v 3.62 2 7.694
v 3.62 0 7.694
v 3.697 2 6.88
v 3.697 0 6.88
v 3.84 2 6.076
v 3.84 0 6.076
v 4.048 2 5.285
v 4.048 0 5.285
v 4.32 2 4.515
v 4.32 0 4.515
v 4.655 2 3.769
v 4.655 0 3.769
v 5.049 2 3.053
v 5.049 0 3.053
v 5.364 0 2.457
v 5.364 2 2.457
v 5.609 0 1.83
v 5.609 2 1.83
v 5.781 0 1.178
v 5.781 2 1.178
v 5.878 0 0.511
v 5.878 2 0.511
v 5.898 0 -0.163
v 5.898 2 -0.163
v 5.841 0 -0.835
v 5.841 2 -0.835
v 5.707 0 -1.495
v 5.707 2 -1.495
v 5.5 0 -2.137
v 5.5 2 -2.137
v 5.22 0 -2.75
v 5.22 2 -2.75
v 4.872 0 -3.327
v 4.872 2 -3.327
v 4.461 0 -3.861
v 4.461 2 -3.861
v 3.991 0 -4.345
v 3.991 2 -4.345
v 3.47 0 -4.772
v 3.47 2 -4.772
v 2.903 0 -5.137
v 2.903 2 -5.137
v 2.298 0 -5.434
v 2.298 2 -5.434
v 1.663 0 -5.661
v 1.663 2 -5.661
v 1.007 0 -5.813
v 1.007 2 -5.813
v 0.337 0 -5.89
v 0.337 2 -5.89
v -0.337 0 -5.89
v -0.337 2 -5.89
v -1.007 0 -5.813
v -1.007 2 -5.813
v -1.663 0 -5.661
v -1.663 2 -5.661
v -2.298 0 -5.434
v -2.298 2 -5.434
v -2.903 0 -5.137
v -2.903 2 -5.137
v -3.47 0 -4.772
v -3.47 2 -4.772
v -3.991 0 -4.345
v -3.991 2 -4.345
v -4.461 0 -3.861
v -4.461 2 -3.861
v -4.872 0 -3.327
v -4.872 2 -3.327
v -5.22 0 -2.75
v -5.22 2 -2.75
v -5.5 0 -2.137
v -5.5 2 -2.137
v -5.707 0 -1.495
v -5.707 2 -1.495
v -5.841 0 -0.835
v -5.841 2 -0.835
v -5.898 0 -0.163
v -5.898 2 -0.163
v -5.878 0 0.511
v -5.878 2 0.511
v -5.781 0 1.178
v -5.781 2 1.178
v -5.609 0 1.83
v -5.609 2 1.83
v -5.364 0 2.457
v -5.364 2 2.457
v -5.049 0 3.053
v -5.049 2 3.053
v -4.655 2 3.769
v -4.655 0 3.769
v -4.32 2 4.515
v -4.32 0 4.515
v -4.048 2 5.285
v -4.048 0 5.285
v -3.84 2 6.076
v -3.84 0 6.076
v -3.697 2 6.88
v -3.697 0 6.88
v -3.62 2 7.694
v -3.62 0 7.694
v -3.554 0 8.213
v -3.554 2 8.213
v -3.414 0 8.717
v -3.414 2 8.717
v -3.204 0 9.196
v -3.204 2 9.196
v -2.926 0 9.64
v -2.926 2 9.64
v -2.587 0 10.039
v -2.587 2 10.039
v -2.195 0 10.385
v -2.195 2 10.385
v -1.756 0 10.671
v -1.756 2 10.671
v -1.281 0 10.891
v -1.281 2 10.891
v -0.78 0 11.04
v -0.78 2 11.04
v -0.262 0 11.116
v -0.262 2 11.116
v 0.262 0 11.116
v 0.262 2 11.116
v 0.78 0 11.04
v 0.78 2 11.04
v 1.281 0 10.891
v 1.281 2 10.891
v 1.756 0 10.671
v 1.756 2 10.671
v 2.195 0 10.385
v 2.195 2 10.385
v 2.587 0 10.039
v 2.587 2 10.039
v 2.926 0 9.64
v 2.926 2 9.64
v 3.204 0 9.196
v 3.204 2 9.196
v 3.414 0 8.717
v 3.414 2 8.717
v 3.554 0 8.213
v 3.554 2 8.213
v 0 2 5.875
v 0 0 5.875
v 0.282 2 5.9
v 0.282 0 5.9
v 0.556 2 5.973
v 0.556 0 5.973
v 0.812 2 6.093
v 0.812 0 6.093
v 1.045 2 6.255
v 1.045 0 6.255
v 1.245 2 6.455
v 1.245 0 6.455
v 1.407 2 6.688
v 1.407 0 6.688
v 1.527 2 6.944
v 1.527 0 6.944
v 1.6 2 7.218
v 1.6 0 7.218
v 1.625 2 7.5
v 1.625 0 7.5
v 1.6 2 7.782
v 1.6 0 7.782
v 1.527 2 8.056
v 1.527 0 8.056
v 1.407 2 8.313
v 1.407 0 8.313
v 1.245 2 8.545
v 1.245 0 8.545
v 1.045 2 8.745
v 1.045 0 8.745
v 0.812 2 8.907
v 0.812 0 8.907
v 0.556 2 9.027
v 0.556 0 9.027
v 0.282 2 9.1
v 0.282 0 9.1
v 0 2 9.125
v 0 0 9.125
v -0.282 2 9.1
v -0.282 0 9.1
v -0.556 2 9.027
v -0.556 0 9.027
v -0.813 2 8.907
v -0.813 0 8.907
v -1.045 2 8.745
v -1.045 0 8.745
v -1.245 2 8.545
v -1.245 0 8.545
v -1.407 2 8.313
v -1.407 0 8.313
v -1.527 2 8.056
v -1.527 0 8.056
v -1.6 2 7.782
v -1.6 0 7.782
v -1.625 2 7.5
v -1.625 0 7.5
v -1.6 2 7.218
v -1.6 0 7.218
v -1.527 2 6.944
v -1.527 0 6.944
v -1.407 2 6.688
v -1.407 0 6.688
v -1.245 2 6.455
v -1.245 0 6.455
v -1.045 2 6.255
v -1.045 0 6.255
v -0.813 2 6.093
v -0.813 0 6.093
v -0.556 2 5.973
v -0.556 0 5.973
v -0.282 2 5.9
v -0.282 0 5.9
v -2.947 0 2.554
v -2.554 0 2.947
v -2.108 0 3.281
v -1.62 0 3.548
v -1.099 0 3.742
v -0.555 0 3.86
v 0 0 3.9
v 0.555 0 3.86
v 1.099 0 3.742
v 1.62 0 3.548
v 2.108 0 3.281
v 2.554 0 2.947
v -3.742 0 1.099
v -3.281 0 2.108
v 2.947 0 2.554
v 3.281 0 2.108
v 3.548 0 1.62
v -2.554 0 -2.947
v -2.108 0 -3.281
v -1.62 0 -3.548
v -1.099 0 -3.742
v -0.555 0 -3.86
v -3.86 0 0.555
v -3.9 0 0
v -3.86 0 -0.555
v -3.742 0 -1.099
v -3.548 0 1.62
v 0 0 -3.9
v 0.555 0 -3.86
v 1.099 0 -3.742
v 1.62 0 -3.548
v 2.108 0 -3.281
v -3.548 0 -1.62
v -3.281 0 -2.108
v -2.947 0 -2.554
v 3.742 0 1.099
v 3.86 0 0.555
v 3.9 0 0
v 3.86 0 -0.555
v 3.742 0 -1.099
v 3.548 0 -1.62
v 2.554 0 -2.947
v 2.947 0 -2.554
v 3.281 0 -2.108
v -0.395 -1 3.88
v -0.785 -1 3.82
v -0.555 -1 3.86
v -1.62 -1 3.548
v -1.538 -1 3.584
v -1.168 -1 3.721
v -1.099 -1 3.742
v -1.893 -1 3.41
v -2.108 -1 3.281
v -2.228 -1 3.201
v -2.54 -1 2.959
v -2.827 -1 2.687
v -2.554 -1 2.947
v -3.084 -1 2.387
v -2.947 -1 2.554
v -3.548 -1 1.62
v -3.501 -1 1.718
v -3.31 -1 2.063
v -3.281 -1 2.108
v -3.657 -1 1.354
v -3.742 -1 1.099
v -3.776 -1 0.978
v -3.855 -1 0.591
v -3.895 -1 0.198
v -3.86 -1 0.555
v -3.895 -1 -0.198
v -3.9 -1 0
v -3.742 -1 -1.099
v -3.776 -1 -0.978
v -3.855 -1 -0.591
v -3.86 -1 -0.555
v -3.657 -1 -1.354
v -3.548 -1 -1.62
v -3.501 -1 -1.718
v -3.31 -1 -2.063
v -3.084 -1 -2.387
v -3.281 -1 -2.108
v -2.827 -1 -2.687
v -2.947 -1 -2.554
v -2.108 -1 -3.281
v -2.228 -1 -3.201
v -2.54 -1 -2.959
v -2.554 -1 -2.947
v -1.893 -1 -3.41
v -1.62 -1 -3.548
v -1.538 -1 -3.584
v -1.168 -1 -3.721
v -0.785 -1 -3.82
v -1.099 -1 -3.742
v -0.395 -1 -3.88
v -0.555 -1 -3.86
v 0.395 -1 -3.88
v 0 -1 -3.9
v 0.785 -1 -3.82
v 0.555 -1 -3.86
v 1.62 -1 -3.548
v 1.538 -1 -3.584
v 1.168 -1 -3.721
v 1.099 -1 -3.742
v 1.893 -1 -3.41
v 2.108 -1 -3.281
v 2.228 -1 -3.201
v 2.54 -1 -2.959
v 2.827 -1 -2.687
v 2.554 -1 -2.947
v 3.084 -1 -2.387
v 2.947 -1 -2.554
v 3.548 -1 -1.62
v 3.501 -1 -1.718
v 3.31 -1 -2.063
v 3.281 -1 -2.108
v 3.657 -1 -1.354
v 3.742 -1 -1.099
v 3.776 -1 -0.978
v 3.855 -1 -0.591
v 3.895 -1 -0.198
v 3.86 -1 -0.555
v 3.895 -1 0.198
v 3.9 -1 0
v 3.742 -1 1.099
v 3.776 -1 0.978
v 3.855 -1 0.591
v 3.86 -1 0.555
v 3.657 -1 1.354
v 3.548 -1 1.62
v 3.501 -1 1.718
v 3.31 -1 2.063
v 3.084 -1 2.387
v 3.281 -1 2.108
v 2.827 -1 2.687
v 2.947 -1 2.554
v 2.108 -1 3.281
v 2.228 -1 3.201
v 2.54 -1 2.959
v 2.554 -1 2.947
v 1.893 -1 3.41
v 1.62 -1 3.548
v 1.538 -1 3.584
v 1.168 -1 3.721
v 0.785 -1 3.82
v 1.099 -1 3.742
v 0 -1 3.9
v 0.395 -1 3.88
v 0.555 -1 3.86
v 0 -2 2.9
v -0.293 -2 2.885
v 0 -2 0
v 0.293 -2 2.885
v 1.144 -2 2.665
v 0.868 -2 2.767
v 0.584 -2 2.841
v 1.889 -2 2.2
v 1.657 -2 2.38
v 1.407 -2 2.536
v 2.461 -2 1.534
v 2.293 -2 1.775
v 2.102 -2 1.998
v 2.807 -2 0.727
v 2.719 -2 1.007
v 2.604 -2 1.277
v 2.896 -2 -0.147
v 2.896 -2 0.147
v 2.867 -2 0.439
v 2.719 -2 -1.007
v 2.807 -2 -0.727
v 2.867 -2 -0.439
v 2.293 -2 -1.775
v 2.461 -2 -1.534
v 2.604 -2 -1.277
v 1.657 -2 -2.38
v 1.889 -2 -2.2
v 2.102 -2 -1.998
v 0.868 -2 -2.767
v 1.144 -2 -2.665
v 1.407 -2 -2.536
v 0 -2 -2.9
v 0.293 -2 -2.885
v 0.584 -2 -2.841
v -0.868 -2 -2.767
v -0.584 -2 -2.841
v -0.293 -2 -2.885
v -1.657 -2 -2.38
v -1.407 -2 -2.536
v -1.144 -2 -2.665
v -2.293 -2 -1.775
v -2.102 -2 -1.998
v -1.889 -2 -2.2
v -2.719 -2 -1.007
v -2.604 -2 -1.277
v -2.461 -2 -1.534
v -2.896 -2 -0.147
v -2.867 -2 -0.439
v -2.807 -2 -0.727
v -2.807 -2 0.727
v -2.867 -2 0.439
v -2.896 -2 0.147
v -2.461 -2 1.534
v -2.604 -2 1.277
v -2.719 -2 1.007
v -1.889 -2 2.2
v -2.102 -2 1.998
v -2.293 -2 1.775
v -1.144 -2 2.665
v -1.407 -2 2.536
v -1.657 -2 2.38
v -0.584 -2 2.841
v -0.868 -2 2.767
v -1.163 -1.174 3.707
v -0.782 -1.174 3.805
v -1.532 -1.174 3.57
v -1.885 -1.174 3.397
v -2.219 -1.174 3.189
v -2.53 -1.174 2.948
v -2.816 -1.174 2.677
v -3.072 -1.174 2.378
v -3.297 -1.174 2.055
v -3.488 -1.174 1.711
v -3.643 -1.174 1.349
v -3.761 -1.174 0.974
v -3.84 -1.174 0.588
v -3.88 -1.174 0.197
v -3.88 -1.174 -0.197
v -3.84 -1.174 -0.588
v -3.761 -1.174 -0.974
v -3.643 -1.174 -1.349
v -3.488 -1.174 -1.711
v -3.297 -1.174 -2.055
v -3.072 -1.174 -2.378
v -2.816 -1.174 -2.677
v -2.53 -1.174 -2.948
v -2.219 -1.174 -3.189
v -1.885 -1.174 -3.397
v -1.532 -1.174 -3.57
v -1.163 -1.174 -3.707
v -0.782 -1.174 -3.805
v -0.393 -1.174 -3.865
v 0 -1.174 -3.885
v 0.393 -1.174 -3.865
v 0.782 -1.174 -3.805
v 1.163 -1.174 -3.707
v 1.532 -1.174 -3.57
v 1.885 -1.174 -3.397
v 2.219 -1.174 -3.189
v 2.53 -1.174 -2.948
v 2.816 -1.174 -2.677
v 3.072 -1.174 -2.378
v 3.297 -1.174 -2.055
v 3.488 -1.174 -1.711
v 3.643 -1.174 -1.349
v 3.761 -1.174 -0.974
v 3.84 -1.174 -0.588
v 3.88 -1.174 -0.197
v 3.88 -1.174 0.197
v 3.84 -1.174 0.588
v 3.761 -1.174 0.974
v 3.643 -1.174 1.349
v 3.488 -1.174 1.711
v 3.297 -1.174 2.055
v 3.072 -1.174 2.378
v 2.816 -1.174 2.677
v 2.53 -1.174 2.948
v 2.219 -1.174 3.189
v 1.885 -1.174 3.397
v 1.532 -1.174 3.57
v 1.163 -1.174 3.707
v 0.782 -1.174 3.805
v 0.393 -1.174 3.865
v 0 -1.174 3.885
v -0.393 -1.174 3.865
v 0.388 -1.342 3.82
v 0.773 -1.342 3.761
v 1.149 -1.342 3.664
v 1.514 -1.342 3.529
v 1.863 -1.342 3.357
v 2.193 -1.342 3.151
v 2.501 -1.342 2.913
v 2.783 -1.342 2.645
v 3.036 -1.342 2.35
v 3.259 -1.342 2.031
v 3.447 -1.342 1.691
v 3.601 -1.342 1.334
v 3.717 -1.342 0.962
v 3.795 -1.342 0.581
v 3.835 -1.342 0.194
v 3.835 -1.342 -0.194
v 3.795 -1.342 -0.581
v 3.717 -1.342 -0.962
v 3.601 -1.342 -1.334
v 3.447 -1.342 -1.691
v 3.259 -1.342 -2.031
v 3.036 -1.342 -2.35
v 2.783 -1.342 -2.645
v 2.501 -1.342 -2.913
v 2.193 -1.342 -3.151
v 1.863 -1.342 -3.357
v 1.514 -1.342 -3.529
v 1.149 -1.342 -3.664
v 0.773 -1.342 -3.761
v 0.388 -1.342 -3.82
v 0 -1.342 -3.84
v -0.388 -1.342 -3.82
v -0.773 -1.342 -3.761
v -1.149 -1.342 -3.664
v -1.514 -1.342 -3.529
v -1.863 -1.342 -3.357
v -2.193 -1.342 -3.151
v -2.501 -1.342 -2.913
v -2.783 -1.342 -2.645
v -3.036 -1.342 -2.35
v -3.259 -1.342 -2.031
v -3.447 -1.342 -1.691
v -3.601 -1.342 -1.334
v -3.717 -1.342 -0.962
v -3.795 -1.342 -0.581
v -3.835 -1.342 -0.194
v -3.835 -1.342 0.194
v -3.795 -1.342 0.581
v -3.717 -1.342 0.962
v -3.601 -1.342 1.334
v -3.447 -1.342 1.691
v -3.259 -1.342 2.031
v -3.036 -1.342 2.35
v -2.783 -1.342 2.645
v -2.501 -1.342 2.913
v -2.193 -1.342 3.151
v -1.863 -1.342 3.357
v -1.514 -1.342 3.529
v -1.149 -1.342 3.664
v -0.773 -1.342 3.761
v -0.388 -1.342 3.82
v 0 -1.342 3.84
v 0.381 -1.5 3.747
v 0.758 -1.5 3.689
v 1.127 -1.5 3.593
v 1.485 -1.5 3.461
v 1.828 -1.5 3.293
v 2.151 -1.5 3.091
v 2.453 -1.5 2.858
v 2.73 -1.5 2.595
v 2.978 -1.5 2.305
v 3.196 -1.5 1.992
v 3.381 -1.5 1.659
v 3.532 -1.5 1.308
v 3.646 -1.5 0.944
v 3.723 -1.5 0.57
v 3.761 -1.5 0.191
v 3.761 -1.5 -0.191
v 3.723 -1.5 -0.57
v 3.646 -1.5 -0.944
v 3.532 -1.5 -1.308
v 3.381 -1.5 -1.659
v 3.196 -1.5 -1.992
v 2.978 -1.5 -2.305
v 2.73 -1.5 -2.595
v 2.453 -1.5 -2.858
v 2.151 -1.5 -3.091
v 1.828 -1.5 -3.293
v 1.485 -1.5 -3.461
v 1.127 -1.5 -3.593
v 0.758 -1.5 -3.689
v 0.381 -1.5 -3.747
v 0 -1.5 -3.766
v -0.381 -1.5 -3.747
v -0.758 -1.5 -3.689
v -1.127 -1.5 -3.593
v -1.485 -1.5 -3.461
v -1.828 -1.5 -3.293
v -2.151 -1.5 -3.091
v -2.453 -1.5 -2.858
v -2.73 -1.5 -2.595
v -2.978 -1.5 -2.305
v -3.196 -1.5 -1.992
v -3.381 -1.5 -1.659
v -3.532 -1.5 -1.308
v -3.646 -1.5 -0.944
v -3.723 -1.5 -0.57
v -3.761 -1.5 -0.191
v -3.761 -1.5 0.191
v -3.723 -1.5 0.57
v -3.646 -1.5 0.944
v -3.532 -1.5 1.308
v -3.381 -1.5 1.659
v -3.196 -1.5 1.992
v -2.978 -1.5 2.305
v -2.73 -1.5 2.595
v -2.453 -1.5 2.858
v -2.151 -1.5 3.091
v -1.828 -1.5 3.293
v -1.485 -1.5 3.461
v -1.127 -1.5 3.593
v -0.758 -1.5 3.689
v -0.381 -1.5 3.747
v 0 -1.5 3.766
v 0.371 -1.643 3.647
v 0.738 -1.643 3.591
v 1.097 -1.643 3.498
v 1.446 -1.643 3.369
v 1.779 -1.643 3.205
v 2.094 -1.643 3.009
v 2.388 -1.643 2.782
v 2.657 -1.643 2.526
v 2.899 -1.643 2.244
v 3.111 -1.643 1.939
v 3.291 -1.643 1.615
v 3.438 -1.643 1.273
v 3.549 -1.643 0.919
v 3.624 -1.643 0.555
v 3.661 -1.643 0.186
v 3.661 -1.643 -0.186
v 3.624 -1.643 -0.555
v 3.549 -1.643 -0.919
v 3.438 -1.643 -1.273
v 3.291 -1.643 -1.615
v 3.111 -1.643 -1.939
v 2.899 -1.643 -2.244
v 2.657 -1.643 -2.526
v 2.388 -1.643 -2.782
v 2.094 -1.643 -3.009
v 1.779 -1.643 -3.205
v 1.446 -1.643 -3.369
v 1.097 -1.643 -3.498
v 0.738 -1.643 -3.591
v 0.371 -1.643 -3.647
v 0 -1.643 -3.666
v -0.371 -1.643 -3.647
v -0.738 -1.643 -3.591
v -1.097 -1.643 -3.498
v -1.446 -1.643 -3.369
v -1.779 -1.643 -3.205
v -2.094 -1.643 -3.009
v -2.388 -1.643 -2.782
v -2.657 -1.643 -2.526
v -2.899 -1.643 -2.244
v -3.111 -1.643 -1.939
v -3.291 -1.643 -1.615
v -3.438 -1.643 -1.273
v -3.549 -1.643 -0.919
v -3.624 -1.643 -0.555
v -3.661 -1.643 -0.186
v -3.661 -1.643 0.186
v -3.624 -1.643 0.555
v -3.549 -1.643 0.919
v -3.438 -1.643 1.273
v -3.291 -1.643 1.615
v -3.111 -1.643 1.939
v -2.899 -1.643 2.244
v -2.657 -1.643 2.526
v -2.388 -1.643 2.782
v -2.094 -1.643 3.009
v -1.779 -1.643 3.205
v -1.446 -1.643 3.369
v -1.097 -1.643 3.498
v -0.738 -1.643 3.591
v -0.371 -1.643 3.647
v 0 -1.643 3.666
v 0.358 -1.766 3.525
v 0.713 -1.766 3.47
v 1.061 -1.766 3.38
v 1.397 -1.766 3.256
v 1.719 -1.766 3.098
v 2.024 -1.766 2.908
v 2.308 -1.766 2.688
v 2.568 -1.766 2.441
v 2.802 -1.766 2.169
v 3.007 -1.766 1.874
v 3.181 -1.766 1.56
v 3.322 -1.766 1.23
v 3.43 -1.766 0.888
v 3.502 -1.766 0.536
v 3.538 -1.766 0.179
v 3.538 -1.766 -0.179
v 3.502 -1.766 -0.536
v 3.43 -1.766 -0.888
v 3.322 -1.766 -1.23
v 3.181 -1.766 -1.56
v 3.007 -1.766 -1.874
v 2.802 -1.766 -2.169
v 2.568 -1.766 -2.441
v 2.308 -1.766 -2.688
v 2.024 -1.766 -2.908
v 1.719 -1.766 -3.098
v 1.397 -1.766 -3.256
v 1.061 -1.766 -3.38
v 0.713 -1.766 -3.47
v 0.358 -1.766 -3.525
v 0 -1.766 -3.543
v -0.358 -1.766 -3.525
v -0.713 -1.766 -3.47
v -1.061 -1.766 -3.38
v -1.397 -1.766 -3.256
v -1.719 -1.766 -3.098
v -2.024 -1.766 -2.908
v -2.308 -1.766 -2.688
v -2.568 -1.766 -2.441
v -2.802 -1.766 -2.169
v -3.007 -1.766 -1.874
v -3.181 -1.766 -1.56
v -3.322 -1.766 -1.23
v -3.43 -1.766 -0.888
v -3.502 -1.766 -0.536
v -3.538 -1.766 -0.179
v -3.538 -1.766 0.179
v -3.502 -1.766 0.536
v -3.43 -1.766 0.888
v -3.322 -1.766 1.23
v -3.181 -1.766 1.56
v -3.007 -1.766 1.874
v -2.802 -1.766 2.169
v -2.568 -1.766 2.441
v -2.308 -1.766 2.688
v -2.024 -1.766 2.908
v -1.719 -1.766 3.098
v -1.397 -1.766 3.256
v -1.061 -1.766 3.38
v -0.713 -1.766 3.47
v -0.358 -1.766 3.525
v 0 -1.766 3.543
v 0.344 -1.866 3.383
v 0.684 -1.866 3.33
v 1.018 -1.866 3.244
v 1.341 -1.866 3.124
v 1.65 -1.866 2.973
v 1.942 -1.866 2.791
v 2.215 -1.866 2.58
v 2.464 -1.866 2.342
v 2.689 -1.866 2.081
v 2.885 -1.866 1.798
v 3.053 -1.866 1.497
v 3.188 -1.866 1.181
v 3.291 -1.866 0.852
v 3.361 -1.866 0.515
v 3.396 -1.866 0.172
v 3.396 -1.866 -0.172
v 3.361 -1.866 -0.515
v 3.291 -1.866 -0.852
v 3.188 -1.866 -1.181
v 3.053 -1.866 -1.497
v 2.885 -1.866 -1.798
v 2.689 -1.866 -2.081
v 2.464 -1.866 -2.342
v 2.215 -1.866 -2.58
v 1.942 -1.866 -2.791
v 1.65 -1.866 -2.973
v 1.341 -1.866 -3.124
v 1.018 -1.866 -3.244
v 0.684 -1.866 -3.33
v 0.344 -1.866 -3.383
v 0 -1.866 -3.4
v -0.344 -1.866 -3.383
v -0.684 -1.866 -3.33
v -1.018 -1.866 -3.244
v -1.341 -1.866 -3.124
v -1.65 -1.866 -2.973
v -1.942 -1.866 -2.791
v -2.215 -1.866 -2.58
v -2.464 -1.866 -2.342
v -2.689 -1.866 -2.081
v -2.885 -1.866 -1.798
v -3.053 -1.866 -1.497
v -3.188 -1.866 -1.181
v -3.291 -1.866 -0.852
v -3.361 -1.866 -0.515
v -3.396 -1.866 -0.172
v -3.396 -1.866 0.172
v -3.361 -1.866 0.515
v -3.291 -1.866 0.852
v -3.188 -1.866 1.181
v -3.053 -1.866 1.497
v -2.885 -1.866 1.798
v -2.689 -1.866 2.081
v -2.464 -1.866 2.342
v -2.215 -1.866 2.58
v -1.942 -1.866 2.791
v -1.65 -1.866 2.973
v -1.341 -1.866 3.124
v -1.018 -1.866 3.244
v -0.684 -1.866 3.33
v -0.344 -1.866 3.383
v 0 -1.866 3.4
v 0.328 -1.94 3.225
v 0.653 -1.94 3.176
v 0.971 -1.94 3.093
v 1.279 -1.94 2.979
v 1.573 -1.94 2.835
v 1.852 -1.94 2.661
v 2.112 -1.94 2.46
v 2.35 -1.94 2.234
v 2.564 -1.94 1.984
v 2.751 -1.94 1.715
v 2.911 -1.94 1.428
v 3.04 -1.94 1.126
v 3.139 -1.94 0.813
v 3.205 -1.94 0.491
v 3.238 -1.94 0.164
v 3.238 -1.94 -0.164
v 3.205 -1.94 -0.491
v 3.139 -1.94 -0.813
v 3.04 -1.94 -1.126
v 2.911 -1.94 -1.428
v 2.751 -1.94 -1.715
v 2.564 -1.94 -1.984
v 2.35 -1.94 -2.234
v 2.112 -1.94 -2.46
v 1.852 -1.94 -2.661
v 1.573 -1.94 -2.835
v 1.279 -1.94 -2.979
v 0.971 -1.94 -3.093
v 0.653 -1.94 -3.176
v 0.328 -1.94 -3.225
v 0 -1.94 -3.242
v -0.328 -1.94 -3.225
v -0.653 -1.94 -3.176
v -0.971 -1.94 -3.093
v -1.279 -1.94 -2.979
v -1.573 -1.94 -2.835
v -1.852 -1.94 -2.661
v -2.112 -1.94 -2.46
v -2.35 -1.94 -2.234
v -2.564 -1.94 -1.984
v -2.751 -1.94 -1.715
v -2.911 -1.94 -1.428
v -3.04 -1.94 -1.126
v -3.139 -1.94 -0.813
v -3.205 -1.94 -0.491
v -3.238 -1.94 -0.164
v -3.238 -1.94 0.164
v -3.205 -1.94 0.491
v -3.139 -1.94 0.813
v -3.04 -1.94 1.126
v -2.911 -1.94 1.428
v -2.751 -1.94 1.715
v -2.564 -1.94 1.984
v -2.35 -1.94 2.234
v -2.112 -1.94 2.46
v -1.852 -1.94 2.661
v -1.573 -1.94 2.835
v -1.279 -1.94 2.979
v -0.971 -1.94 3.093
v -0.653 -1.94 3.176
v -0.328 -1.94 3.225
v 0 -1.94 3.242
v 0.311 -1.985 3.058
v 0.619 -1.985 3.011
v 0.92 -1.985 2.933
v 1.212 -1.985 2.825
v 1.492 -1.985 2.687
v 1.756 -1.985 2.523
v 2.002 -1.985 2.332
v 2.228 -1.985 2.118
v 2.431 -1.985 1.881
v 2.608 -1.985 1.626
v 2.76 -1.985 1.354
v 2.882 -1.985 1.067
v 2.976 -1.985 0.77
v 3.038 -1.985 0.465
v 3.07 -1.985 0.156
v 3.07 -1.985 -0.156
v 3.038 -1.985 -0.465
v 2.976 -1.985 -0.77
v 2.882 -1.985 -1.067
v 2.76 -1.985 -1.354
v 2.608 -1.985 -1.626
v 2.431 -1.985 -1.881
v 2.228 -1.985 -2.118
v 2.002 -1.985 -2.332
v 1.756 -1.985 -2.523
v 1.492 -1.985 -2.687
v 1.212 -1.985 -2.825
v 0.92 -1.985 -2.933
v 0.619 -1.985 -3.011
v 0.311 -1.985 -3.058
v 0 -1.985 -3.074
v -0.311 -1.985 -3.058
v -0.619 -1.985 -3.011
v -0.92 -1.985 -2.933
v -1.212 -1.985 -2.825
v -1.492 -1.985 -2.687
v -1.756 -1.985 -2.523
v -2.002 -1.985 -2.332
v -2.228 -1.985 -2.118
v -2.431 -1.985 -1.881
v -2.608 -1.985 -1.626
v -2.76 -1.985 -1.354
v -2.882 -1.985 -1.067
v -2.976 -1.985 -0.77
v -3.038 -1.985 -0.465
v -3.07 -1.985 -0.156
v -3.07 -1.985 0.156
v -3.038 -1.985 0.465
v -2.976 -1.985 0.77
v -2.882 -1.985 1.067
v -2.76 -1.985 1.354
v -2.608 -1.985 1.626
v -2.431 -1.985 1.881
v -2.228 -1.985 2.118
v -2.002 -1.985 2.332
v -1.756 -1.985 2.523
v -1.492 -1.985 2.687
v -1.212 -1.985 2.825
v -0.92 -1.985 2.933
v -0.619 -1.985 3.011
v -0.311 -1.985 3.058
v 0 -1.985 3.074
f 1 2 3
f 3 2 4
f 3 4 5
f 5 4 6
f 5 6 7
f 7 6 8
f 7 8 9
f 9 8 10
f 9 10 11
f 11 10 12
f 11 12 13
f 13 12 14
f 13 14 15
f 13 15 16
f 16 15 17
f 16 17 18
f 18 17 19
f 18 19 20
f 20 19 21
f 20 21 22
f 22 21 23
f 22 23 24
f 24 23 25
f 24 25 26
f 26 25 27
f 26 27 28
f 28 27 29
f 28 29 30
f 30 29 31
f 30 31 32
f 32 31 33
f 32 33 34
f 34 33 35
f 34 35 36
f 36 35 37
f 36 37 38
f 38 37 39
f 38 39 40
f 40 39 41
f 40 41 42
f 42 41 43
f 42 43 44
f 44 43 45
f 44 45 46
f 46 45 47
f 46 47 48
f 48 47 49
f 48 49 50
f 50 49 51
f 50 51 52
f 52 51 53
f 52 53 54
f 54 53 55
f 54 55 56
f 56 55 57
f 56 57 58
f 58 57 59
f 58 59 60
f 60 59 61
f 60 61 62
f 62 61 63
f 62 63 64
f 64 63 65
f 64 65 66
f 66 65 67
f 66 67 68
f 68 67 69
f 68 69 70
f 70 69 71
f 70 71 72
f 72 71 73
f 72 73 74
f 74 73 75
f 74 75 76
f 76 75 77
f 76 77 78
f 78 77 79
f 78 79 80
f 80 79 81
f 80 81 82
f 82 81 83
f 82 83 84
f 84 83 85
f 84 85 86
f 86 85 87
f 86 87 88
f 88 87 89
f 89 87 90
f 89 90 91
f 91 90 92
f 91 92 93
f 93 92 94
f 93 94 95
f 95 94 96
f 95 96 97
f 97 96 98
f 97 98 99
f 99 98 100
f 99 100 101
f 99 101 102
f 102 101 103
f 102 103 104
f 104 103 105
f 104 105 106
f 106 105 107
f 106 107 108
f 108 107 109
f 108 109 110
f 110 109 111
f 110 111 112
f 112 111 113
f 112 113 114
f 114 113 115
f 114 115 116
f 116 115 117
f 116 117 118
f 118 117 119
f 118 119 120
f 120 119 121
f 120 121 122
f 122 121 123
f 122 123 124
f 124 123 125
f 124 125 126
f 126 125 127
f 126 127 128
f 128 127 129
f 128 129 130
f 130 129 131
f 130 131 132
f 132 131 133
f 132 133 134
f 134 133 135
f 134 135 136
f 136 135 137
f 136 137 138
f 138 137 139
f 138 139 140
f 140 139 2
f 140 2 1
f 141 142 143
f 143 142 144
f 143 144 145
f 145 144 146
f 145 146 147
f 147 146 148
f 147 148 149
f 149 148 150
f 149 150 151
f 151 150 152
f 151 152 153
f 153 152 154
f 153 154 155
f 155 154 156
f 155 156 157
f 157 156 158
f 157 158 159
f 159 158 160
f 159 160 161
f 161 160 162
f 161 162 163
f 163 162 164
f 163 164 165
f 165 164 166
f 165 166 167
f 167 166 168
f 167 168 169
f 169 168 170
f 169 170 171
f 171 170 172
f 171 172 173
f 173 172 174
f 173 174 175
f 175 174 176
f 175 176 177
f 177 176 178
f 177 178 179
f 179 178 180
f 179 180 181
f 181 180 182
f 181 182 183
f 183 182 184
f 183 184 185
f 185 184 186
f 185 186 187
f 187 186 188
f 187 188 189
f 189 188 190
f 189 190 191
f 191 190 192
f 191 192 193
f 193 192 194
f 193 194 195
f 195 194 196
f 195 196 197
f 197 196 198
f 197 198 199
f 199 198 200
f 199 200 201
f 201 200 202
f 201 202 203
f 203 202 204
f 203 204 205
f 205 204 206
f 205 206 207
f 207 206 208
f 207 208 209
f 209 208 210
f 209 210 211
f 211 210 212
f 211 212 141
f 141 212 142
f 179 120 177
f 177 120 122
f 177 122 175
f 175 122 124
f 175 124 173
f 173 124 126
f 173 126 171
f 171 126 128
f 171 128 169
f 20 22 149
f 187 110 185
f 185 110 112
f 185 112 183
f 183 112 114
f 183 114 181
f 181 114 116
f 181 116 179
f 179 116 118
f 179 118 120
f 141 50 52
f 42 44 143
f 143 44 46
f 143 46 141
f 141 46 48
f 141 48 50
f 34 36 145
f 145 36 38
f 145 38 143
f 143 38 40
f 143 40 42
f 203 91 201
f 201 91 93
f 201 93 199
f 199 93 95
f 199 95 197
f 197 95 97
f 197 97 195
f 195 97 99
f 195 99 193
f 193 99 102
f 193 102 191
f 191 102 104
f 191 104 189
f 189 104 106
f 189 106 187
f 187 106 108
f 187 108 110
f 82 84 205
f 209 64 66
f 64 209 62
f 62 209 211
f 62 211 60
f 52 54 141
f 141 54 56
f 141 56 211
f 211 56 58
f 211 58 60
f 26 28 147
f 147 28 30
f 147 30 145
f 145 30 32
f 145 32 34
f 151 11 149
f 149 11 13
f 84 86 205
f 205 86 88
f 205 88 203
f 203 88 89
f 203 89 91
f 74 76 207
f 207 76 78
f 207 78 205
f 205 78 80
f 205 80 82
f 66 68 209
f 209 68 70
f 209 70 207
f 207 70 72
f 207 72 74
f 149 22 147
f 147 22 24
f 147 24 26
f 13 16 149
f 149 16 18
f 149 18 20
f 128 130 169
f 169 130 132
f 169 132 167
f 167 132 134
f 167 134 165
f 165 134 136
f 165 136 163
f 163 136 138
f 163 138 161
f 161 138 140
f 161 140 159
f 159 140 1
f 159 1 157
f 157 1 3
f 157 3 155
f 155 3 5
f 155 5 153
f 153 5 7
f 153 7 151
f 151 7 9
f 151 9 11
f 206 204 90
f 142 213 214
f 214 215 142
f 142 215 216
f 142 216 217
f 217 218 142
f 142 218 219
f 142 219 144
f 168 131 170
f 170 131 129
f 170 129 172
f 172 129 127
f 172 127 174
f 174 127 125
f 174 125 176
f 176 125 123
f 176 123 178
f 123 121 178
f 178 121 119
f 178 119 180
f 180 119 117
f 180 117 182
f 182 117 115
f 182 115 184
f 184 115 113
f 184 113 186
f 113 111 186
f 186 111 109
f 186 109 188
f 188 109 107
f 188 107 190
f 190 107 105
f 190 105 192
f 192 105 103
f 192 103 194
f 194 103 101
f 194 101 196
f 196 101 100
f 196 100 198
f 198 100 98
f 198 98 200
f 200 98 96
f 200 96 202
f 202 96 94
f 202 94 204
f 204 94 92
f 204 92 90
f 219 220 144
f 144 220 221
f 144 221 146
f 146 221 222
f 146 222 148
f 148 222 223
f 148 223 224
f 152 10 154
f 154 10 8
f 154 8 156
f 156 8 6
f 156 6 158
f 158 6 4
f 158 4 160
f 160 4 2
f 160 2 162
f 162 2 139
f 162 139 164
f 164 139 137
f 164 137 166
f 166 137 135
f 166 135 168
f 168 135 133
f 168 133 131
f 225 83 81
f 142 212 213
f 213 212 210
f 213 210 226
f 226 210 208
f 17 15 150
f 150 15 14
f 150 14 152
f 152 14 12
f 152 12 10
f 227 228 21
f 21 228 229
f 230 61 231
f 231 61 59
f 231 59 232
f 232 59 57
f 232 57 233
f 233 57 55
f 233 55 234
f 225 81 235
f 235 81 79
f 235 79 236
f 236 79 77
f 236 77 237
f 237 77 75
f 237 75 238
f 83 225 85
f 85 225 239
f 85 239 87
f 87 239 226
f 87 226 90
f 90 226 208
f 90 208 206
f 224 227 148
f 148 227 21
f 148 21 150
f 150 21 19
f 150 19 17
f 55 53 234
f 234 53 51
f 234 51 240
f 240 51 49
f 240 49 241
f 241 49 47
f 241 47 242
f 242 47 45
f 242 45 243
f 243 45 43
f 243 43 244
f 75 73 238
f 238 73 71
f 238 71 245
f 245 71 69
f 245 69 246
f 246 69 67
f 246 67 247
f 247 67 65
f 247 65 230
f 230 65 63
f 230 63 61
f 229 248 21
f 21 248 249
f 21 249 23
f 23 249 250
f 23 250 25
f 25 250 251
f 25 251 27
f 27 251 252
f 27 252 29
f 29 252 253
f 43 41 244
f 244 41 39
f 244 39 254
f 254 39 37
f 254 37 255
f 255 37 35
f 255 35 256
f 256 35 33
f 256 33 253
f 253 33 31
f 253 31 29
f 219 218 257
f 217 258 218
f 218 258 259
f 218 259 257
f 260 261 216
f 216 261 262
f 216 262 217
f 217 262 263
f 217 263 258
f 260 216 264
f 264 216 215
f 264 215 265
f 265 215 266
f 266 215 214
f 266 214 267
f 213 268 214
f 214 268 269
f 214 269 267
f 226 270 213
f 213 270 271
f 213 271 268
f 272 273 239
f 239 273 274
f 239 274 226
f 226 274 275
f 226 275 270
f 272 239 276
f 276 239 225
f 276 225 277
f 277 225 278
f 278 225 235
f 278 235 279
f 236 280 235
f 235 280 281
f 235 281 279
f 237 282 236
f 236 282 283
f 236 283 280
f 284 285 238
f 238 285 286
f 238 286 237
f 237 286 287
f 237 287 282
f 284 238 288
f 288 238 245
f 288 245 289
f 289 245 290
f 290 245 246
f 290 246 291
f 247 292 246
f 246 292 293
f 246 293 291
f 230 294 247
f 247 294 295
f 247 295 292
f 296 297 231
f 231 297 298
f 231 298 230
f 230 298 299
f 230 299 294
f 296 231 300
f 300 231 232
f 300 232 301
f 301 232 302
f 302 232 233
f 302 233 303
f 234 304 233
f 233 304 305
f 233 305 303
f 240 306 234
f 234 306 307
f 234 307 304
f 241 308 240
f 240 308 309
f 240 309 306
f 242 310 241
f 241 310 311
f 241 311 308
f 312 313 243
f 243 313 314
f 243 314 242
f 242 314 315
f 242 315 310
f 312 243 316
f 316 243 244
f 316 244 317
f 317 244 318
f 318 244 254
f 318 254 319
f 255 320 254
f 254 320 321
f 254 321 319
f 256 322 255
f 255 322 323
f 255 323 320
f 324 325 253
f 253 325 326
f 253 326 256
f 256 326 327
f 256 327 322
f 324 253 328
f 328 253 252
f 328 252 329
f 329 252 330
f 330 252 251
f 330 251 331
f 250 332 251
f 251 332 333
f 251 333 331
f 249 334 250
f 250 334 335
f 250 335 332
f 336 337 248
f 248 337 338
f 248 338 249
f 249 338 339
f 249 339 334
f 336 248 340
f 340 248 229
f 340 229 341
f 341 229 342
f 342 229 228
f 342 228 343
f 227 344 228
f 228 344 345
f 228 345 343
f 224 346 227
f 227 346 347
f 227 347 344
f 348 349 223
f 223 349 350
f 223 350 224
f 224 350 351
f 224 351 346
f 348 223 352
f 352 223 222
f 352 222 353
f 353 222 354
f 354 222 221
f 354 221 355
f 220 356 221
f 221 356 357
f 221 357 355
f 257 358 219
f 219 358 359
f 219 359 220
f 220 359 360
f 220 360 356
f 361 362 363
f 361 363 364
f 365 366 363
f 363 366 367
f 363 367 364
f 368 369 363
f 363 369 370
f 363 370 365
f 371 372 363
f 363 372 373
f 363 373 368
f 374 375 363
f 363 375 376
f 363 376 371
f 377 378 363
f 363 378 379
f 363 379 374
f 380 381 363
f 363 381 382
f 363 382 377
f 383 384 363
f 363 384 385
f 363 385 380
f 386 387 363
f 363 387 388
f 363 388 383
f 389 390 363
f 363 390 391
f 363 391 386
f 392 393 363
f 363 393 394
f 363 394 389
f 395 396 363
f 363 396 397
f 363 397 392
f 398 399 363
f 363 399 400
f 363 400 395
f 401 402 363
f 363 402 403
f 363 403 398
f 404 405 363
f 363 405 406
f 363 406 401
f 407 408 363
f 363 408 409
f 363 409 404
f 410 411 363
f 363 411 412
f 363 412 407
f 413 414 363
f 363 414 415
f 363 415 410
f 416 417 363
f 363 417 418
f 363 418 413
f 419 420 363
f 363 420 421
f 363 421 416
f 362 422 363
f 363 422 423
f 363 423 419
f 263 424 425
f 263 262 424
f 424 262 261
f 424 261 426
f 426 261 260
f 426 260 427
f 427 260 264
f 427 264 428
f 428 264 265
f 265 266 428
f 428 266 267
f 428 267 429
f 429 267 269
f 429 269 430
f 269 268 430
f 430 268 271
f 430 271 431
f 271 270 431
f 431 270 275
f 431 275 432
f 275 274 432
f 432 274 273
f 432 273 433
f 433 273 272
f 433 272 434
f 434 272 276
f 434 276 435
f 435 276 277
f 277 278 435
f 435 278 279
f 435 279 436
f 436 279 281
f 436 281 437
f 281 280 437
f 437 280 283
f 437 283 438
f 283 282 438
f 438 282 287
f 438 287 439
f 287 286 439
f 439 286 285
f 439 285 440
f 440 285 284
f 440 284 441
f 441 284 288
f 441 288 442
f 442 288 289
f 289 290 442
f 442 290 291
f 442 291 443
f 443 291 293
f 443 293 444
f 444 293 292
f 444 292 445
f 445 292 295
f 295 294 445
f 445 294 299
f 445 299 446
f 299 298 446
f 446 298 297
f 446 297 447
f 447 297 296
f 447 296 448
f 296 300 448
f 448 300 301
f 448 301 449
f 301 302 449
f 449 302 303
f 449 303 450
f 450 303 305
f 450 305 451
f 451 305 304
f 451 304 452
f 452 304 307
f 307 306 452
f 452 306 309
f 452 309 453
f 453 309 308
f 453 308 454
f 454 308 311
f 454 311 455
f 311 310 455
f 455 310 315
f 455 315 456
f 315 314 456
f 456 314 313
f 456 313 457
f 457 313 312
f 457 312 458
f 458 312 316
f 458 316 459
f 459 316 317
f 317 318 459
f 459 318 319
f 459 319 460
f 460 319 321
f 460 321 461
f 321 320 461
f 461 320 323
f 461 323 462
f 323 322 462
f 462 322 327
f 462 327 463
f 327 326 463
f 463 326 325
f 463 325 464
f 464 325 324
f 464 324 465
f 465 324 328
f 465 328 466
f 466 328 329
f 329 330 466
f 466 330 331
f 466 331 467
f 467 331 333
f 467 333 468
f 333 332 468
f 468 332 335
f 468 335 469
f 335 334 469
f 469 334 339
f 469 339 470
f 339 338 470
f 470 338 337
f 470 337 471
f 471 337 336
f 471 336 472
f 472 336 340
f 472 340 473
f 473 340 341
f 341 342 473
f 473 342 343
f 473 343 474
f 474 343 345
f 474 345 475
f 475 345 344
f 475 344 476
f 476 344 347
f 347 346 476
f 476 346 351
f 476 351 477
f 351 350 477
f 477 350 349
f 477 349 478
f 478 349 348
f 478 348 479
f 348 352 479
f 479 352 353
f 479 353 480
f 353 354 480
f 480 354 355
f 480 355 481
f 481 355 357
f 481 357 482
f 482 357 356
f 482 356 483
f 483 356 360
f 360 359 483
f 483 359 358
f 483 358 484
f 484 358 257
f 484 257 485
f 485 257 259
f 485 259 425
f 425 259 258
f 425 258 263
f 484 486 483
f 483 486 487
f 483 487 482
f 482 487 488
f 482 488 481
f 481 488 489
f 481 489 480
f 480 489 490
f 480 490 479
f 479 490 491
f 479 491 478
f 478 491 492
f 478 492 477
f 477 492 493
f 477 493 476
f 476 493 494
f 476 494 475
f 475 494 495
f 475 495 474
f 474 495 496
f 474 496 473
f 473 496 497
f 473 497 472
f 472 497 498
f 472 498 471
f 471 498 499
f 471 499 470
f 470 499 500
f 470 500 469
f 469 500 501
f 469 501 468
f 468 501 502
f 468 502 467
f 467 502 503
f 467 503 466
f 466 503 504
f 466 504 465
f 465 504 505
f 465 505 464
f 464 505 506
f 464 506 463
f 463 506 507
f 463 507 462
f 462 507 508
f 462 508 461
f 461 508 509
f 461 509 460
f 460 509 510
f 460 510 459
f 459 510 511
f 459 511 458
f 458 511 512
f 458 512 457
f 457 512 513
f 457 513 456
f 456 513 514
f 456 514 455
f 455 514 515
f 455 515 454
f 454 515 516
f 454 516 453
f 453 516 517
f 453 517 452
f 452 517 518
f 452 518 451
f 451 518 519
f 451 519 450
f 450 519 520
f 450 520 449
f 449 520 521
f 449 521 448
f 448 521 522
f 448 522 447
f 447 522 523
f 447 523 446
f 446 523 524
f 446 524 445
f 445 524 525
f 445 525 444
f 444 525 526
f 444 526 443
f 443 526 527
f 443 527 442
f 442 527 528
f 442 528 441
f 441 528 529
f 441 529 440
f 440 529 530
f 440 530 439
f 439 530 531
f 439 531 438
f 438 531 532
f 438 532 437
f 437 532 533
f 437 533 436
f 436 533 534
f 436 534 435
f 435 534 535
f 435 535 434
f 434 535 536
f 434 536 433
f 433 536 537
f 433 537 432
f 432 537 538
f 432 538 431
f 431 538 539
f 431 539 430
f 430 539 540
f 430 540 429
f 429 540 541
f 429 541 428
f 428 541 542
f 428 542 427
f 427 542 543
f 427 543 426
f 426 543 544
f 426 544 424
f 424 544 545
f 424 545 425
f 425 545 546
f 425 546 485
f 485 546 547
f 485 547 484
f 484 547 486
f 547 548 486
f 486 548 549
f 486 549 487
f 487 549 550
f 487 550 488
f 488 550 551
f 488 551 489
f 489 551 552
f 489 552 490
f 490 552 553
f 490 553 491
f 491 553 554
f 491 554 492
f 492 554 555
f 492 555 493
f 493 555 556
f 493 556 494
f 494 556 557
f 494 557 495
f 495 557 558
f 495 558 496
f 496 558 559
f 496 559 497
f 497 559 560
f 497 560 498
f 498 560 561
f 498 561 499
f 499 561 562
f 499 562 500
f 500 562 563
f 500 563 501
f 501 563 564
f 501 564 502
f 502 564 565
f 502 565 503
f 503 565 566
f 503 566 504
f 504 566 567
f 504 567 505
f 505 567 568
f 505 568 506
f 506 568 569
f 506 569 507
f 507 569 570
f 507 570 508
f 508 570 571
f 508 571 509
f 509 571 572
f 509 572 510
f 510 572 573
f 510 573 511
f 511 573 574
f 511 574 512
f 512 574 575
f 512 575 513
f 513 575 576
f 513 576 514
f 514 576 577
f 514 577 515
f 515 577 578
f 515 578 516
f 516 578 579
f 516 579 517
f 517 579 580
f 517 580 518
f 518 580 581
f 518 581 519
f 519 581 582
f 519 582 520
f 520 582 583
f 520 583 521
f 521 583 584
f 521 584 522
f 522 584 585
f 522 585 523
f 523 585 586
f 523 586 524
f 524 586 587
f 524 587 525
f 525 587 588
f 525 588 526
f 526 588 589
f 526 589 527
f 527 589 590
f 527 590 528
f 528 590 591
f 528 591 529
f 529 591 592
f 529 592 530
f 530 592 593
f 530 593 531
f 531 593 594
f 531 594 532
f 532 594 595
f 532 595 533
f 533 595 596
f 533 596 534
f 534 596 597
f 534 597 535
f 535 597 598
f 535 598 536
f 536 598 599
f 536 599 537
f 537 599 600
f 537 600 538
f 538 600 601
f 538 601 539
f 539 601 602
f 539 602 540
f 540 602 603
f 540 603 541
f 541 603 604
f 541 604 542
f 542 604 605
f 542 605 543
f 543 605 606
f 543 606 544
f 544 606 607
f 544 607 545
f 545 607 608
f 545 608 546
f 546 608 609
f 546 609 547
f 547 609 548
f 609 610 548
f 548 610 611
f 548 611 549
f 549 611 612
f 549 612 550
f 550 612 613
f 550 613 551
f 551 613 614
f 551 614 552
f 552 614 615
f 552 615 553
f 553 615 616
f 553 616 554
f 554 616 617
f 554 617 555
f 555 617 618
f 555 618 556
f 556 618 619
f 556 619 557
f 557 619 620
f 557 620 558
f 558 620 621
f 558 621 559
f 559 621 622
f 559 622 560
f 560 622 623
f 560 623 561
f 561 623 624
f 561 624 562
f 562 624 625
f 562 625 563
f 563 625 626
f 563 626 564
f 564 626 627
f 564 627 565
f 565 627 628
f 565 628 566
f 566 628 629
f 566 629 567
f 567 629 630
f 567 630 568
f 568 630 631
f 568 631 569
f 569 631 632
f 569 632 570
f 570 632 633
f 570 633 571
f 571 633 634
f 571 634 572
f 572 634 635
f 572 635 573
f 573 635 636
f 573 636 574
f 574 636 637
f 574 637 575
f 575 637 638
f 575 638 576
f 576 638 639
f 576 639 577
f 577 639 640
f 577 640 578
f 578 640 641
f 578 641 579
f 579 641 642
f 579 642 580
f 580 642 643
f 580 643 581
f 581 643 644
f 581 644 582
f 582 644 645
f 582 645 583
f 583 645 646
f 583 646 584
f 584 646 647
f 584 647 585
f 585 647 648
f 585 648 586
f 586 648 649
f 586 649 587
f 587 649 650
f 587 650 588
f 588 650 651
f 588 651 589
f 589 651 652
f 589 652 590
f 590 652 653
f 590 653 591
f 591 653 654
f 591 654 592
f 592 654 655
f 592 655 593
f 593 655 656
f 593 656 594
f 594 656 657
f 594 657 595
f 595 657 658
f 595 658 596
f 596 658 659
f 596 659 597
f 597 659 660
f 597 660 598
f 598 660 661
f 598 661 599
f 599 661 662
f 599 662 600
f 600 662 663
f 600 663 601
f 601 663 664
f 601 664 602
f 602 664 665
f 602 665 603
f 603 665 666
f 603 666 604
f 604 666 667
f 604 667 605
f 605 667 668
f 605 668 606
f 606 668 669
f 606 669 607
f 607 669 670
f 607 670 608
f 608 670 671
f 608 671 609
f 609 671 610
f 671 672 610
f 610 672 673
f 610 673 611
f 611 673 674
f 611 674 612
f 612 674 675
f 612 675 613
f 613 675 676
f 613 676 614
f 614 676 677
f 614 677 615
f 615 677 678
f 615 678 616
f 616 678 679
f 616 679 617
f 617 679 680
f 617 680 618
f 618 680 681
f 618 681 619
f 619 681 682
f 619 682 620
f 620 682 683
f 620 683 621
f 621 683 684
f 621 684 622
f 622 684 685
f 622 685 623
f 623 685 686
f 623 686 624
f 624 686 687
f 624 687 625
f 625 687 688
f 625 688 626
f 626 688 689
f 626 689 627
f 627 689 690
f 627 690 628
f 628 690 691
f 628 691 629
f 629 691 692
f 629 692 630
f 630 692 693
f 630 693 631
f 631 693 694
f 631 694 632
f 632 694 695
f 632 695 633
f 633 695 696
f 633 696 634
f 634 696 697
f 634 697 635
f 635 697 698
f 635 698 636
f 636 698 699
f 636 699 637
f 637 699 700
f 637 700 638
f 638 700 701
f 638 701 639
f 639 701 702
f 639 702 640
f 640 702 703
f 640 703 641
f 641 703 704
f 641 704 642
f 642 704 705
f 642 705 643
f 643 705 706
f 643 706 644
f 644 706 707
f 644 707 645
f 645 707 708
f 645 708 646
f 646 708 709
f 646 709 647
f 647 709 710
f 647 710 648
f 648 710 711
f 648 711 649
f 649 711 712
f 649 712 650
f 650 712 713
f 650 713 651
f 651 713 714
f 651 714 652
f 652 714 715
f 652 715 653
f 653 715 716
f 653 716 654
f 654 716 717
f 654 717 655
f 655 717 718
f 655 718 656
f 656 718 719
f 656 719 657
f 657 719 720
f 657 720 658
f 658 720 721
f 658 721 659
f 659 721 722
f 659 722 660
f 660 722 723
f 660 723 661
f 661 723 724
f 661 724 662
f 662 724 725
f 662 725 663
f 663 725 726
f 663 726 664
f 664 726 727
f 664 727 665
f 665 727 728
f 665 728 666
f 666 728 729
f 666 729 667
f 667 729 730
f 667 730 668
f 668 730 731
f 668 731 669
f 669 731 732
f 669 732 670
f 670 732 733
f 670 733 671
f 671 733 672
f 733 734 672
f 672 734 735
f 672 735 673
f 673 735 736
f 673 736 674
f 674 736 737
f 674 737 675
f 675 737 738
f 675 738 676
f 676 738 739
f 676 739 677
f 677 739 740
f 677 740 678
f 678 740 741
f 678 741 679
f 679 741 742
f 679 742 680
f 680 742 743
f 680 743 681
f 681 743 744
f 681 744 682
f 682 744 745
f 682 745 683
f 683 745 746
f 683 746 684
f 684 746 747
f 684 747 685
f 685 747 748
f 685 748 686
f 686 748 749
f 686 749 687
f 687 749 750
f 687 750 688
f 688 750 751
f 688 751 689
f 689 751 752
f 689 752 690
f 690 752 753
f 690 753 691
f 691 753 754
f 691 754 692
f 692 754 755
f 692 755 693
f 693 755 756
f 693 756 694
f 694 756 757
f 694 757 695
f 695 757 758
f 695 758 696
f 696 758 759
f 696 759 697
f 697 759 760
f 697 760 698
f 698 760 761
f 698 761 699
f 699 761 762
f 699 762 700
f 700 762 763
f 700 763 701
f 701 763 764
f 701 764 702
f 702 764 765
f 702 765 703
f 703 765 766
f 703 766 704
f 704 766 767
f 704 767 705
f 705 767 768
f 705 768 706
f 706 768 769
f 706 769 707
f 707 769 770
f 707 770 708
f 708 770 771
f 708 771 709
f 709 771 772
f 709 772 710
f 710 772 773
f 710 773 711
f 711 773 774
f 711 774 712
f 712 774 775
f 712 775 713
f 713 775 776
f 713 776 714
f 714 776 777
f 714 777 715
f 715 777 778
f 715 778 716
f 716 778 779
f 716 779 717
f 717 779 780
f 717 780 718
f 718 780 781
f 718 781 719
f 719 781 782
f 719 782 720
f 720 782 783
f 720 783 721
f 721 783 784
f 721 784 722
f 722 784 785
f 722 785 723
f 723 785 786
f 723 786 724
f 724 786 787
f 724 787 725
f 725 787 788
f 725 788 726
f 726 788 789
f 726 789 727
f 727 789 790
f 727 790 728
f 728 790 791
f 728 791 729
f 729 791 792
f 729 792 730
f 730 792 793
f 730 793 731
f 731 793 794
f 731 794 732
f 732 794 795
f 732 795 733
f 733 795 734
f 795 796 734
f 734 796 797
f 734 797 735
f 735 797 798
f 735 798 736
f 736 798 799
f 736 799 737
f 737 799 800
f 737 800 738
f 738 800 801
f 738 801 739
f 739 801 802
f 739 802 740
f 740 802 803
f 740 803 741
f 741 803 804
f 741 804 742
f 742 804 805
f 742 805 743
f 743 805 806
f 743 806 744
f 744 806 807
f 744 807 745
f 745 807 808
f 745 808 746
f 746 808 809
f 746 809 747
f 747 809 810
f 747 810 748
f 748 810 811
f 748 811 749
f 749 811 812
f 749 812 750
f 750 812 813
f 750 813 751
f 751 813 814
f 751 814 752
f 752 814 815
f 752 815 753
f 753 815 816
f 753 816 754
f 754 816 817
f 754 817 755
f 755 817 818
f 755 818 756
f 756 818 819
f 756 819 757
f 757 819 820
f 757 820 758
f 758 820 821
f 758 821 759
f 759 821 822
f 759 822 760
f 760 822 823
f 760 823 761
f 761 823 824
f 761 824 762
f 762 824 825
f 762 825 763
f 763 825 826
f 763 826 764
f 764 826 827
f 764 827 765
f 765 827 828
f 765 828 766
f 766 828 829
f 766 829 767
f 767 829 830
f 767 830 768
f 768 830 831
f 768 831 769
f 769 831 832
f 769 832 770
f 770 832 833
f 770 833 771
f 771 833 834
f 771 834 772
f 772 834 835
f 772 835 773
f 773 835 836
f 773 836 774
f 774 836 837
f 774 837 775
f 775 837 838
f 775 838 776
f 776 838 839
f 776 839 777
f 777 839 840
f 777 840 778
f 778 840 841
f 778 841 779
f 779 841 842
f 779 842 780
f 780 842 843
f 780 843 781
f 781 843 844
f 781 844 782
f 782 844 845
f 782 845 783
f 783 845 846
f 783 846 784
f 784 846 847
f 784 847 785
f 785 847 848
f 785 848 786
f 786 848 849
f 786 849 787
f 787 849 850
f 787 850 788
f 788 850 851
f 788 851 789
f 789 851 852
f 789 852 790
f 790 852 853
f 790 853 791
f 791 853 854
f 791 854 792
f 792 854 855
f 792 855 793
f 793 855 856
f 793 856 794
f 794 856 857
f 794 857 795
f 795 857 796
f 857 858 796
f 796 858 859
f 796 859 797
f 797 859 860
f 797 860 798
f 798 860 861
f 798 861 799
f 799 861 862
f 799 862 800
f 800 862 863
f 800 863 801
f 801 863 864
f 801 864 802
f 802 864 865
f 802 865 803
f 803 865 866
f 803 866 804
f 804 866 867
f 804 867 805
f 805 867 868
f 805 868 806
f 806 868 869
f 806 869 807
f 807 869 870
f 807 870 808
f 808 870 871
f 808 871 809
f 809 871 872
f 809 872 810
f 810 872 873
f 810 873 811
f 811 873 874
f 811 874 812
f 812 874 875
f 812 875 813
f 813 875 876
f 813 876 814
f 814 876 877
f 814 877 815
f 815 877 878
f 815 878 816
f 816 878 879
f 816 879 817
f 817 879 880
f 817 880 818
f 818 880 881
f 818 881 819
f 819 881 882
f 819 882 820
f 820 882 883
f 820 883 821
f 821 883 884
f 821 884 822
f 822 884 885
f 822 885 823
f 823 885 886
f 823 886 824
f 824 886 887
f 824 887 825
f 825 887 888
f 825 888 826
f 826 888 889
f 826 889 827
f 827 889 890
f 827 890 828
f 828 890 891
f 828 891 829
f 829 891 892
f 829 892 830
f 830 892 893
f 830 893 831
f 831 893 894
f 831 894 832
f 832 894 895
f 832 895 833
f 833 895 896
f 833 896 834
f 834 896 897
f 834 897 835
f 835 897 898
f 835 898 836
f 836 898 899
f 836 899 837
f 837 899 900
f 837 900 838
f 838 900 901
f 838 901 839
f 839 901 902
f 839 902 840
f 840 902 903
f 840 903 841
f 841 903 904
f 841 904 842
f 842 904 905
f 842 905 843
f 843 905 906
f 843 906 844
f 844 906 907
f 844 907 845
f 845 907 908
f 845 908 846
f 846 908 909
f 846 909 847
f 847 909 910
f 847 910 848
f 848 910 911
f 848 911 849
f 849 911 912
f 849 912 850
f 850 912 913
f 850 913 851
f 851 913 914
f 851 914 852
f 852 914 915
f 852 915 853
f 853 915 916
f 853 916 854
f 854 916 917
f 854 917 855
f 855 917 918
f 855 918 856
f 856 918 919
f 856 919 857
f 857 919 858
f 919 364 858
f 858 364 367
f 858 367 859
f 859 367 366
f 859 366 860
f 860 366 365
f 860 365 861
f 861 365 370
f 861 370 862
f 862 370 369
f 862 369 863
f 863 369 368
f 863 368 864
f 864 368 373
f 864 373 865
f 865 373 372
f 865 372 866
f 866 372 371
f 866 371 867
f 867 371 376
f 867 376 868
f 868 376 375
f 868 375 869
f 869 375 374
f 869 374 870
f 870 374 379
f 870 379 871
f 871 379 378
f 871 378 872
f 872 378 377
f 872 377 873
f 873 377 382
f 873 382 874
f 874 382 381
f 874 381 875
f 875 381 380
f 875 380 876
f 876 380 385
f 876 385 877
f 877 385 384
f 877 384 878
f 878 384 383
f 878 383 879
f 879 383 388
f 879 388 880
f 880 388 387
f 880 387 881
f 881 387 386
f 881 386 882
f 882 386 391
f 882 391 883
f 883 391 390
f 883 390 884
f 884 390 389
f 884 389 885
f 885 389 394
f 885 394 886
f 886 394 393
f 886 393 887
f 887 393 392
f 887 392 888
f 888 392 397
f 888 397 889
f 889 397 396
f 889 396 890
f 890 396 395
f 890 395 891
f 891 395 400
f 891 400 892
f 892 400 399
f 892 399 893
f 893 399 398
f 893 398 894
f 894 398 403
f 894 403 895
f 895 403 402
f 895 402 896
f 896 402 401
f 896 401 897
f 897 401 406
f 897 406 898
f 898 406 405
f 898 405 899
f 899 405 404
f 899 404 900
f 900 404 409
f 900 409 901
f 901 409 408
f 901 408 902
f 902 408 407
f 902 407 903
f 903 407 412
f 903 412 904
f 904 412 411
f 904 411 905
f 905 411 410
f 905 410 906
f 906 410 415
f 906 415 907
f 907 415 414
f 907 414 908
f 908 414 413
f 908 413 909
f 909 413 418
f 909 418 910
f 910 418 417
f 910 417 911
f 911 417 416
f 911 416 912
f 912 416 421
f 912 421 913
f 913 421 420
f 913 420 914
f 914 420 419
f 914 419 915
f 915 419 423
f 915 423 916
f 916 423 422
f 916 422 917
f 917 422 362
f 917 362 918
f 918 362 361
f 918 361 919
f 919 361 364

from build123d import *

# Parameters (mm, degrees)
SKETCH1_R           = 1.625
BOSS_EXTRUDE1_DEPTH = 2
SKETCH1_3_R         = 3.9
BOSS_EXTRUDE2_DEPTH = 2
FILLET1_R           = 1


with BuildPart() as part:
    # Sketch1 → Boss-Extrude1 (new body)
    with BuildSketch(Plane(origin=(0, 0, 0), x_dir=(1, 0, 0), z_dir=(0, 1, 0))):
        with BuildLine():
            ThreePointArc((-5.048596372, -3.053141771), (-4.048280274, -5.285374691), (-3.619822402, -7.693676988))
            ThreePointArc((-3.619822402, -7.693676988), (0, -11.125), (3.619822402, -7.693676988))
            ThreePointArc((3.619822402, -7.693676988), (4.048280274, -5.285374691), (5.048596372, -3.053141771))
            ThreePointArc((5.048596372, -3.053141771), (0, 5.9), (-5.048596372, -3.053141771))
        make_face()
        with Locations((0, -7.5)):
            Circle(SKETCH1_R, mode=Mode.SUBTRACT)
    extrude(amount=BOSS_EXTRUDE1_DEPTH)

    # Sketch1<3> → Boss-Extrude2 (add)
    with BuildSketch(Plane(origin=(0, 0, 0), x_dir=(1, 0, 0), z_dir=(0, 1, 0))):
        Circle(SKETCH1_3_R)
    extrude(amount=-BOSS_EXTRUDE2_DEPTH)

    # Fillet1
    fillet1_edges = [part.edges().sort_by_distance(p)[0] for p in [
        (-3.9, -2, 0),
    ]]
    fillet(fillet1_edges, radius=FILLET1_R)


solid = part.part
